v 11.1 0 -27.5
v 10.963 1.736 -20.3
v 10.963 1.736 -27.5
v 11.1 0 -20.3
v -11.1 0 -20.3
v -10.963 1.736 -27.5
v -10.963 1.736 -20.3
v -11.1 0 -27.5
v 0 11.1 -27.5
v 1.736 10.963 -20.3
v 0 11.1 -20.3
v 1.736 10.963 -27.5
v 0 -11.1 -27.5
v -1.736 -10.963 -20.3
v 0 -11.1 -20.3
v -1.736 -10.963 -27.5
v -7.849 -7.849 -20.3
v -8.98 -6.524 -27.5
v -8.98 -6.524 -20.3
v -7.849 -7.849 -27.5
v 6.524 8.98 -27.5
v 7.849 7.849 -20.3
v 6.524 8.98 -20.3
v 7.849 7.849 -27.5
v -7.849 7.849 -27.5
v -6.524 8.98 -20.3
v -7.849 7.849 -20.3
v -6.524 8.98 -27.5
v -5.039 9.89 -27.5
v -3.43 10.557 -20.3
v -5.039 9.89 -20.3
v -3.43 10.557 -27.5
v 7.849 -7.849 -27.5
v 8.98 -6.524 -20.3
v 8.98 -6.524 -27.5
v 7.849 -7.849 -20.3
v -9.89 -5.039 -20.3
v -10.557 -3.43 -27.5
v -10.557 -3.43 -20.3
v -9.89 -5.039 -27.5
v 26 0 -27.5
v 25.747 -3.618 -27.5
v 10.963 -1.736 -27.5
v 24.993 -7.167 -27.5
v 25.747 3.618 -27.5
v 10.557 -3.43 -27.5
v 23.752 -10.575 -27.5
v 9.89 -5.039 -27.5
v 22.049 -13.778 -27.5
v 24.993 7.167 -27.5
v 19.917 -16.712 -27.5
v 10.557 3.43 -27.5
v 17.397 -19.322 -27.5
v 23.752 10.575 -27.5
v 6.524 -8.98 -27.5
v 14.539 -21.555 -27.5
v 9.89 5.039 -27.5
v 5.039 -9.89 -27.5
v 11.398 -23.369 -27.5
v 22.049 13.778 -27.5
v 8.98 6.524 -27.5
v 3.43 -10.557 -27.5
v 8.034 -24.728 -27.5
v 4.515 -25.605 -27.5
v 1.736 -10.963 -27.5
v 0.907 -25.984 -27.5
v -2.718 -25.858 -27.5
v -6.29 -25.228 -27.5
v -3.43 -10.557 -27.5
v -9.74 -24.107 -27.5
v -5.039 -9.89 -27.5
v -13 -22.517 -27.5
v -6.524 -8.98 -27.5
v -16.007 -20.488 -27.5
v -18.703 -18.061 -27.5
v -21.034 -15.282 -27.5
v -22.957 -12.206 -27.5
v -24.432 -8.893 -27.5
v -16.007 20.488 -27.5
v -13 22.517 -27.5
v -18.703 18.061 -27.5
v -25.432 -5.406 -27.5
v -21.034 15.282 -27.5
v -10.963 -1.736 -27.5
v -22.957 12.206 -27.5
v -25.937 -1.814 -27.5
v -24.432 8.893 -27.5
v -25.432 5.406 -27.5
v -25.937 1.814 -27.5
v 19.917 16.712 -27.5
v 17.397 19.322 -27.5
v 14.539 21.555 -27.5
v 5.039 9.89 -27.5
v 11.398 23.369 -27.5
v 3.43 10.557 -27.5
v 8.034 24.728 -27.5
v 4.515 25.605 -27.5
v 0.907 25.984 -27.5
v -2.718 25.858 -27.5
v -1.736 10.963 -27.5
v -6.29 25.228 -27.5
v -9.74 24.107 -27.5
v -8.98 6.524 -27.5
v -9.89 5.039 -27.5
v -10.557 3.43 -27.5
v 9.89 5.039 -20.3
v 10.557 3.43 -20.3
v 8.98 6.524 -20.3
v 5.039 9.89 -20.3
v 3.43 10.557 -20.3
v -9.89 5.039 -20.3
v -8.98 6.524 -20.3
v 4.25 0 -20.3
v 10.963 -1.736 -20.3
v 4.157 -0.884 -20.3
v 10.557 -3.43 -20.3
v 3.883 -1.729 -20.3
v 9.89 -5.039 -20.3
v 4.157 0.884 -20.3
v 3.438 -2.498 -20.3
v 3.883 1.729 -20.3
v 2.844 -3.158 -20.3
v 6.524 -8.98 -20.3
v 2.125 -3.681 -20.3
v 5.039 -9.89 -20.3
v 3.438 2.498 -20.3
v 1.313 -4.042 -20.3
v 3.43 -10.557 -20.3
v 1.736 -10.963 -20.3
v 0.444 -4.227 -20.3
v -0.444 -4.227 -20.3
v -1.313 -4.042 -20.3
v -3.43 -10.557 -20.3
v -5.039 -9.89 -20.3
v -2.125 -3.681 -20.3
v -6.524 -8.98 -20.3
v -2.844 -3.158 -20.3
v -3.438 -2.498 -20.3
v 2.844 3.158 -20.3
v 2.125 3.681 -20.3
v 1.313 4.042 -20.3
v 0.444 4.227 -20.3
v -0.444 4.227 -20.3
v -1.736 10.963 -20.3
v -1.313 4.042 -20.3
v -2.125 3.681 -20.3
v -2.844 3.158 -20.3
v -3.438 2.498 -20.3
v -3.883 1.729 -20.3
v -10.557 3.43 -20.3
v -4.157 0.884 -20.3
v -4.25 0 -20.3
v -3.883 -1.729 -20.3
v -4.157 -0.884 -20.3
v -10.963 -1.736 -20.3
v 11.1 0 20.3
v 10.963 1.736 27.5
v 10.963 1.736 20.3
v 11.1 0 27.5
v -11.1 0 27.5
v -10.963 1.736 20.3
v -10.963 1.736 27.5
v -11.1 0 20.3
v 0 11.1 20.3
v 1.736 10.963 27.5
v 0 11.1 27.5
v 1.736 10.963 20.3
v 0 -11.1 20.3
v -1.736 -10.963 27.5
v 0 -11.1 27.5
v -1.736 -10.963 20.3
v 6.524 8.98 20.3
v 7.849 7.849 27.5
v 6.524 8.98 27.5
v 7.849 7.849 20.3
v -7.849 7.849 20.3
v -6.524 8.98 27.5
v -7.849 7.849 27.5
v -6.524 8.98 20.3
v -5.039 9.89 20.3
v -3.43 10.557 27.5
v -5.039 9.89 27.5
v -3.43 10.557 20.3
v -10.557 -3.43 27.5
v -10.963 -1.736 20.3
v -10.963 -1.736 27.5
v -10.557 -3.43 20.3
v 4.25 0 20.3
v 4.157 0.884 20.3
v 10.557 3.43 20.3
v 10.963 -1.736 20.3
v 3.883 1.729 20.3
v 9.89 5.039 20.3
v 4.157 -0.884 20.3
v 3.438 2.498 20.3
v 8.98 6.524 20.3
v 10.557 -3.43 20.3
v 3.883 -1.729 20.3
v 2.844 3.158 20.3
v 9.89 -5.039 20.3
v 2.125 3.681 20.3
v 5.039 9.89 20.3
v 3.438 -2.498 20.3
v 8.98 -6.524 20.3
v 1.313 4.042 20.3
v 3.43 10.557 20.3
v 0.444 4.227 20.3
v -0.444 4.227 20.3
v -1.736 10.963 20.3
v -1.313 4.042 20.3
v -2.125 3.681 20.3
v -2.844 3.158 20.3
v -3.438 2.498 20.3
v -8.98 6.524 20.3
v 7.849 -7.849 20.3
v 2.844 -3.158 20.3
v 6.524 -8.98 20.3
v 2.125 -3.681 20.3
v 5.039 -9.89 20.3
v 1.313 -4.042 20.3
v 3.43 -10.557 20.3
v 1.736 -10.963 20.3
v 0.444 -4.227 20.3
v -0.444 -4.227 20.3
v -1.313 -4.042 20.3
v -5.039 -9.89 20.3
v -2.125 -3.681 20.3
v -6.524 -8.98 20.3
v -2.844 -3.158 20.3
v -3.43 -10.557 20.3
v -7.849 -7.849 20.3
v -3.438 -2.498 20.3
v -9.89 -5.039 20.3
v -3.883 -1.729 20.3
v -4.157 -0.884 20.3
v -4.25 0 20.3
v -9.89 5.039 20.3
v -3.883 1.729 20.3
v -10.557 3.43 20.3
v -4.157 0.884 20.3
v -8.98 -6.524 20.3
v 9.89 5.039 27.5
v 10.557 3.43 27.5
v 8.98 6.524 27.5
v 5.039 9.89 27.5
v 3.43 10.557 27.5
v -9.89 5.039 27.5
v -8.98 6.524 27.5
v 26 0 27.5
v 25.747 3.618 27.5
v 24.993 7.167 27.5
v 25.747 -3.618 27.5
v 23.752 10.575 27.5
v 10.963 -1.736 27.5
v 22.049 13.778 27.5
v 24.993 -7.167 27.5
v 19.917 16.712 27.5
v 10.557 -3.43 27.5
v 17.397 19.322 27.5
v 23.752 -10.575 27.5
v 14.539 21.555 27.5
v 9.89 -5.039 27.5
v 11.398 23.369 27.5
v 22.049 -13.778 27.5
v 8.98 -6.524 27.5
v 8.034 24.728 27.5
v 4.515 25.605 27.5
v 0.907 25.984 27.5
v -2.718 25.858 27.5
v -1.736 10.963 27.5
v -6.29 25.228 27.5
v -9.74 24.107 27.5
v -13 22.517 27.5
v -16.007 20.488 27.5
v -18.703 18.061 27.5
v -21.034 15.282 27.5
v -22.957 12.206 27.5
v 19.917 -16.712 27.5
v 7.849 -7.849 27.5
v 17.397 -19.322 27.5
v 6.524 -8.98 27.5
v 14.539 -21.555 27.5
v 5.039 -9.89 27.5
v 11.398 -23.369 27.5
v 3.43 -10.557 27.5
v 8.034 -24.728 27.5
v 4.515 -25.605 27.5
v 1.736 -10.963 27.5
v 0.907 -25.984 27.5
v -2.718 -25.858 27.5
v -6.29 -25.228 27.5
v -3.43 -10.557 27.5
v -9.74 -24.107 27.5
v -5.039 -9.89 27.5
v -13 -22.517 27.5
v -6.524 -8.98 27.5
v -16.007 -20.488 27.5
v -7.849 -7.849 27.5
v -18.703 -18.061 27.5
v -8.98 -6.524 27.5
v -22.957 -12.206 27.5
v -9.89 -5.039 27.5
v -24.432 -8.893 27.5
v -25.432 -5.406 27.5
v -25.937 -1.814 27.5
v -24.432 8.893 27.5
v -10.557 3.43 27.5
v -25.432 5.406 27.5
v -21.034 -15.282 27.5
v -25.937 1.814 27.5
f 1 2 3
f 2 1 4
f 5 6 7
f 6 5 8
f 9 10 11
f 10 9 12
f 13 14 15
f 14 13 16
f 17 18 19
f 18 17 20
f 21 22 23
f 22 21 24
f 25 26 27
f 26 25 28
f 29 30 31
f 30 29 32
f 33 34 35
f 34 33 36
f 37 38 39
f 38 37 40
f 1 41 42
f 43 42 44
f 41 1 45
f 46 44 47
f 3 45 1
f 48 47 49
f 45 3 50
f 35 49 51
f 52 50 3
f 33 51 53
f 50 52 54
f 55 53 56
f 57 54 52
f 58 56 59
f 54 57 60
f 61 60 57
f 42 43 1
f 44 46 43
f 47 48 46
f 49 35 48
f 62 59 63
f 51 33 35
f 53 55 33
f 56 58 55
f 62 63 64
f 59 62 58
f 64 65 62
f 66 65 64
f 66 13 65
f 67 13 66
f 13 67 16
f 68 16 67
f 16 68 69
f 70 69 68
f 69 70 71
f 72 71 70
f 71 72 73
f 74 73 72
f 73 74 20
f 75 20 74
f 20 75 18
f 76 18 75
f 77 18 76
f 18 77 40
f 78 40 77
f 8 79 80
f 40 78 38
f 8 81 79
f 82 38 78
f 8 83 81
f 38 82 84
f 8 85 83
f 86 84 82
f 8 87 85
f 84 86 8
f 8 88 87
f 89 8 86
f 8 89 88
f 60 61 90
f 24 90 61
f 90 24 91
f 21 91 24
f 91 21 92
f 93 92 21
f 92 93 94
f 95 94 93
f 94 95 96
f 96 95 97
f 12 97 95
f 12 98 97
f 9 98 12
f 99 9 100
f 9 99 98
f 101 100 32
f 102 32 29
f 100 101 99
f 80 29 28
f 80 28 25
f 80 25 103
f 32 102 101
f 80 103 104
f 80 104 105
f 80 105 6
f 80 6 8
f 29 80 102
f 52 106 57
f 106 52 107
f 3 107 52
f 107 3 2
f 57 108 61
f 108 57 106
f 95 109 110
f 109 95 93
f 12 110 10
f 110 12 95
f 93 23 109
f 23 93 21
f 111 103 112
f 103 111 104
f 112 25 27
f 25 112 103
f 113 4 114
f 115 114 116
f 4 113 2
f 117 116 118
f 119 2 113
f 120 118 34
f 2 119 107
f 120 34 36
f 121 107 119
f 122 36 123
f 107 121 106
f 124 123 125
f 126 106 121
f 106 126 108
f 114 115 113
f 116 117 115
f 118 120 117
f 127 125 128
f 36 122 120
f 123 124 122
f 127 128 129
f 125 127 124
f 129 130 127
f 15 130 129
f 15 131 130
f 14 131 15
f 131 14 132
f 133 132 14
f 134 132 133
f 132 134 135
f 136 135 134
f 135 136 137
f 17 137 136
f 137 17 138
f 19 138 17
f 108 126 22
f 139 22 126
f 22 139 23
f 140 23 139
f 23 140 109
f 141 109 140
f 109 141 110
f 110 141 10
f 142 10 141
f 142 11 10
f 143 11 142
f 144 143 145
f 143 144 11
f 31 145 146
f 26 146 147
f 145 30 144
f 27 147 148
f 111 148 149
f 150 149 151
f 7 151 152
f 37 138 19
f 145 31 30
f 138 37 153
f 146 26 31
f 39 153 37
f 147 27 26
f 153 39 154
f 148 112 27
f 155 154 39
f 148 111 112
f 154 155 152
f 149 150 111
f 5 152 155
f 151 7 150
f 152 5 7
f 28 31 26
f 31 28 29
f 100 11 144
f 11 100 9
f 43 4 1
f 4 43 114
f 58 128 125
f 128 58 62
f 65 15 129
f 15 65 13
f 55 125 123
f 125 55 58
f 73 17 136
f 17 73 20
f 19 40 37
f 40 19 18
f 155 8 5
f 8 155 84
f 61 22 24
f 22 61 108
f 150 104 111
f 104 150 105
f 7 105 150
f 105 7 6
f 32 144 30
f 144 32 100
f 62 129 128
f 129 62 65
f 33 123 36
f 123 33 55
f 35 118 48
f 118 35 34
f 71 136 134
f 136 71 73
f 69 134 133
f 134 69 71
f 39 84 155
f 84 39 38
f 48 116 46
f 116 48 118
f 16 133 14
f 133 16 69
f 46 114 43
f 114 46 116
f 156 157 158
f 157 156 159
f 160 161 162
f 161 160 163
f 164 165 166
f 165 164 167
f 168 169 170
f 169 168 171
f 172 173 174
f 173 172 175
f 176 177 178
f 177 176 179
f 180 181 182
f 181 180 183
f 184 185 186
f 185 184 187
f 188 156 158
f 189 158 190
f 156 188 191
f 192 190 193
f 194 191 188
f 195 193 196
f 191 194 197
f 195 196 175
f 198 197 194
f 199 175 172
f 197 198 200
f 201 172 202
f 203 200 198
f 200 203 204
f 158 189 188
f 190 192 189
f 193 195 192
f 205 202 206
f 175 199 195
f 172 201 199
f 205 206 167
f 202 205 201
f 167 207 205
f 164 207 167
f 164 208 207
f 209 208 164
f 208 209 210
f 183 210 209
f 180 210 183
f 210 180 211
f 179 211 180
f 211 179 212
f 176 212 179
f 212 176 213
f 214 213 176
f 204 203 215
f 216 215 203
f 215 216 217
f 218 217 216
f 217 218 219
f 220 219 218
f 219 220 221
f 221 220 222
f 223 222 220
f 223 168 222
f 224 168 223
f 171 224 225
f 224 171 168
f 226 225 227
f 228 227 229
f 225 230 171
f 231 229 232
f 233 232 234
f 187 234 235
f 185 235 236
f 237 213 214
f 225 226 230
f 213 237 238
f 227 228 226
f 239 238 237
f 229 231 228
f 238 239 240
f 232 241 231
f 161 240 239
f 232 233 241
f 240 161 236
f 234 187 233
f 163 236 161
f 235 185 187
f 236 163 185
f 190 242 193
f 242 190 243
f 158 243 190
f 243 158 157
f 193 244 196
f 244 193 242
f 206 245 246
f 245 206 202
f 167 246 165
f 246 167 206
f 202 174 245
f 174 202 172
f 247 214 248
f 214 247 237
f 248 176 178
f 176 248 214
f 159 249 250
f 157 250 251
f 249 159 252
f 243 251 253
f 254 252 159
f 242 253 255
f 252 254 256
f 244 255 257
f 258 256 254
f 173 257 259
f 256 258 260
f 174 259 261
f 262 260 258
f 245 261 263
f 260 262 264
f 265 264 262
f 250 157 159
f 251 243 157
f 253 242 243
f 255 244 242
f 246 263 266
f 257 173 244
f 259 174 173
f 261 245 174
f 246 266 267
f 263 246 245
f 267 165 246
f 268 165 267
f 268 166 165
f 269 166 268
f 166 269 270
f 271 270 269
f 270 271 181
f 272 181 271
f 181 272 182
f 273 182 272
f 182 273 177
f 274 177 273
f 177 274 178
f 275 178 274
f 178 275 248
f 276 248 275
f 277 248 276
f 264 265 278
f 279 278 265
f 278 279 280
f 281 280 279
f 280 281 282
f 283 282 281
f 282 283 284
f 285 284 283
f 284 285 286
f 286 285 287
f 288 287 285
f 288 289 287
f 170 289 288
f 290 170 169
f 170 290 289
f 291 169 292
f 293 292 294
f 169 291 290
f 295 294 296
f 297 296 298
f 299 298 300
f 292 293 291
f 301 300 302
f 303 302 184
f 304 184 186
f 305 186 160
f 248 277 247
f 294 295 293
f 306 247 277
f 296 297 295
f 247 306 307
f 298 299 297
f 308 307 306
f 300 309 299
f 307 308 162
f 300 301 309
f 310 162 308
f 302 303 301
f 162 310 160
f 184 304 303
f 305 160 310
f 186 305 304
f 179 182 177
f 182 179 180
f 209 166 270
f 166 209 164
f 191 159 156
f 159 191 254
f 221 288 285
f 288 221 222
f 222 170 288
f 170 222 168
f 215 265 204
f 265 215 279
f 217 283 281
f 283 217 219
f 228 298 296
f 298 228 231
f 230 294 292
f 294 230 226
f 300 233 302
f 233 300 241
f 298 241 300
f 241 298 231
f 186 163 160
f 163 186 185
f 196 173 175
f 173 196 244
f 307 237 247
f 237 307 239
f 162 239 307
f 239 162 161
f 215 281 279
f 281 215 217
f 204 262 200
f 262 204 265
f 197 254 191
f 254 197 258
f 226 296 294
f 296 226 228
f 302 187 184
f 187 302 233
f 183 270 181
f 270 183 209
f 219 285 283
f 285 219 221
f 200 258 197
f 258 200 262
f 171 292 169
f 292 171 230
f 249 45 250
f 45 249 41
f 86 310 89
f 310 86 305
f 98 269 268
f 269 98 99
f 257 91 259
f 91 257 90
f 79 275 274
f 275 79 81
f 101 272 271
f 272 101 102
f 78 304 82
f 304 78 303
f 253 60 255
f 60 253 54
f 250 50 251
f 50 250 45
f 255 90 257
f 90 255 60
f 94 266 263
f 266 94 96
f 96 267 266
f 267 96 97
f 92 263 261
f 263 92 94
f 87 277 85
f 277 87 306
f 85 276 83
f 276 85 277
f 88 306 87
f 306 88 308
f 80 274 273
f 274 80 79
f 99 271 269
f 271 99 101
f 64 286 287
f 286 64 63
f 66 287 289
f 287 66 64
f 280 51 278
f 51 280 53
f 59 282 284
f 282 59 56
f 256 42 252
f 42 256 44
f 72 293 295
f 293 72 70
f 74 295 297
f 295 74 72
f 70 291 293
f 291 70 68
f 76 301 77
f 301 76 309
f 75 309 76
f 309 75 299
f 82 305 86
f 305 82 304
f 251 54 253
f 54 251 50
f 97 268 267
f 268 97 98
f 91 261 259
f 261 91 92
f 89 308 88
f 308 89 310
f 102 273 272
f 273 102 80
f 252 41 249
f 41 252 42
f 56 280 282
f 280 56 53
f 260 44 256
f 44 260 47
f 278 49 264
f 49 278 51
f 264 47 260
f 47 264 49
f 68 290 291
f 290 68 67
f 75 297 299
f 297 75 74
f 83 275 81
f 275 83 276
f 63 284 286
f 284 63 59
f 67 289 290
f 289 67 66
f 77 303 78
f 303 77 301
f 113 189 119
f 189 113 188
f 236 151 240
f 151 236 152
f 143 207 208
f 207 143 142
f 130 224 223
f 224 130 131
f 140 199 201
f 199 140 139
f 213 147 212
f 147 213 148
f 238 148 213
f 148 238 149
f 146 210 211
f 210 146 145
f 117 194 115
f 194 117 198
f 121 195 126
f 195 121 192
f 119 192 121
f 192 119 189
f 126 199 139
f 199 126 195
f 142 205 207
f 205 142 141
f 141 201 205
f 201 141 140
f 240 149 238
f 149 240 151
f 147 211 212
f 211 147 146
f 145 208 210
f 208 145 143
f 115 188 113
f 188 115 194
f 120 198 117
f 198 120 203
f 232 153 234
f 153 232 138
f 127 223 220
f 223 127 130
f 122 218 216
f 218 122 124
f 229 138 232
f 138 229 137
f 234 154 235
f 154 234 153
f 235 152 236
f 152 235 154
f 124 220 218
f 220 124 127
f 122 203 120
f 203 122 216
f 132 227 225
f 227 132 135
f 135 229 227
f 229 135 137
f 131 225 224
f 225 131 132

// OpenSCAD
// filament spool guide 

module spoolGuide(depth=55, diameter=52, rodDiam=8.5, bearingOD=22.2, bearingThickness=7.2){ // these settings are for atomic filament spools, an M8 rod, and 608 bearings
    difference(){
        cylinder(d=diameter,h=depth,center=true,$fn=45);
        
        cylinder(d=rodDiam,h=depth+1,center=true,$fn=30);
        
        for(z=[-1,1]){
            
            #translate([0,0,(depth/2-bearingThickness/2)*z]) cylinder(d=bearingOD,h=bearingThickness,center=true,$fn=40);
        }
    }   
}
spoolGuide();
